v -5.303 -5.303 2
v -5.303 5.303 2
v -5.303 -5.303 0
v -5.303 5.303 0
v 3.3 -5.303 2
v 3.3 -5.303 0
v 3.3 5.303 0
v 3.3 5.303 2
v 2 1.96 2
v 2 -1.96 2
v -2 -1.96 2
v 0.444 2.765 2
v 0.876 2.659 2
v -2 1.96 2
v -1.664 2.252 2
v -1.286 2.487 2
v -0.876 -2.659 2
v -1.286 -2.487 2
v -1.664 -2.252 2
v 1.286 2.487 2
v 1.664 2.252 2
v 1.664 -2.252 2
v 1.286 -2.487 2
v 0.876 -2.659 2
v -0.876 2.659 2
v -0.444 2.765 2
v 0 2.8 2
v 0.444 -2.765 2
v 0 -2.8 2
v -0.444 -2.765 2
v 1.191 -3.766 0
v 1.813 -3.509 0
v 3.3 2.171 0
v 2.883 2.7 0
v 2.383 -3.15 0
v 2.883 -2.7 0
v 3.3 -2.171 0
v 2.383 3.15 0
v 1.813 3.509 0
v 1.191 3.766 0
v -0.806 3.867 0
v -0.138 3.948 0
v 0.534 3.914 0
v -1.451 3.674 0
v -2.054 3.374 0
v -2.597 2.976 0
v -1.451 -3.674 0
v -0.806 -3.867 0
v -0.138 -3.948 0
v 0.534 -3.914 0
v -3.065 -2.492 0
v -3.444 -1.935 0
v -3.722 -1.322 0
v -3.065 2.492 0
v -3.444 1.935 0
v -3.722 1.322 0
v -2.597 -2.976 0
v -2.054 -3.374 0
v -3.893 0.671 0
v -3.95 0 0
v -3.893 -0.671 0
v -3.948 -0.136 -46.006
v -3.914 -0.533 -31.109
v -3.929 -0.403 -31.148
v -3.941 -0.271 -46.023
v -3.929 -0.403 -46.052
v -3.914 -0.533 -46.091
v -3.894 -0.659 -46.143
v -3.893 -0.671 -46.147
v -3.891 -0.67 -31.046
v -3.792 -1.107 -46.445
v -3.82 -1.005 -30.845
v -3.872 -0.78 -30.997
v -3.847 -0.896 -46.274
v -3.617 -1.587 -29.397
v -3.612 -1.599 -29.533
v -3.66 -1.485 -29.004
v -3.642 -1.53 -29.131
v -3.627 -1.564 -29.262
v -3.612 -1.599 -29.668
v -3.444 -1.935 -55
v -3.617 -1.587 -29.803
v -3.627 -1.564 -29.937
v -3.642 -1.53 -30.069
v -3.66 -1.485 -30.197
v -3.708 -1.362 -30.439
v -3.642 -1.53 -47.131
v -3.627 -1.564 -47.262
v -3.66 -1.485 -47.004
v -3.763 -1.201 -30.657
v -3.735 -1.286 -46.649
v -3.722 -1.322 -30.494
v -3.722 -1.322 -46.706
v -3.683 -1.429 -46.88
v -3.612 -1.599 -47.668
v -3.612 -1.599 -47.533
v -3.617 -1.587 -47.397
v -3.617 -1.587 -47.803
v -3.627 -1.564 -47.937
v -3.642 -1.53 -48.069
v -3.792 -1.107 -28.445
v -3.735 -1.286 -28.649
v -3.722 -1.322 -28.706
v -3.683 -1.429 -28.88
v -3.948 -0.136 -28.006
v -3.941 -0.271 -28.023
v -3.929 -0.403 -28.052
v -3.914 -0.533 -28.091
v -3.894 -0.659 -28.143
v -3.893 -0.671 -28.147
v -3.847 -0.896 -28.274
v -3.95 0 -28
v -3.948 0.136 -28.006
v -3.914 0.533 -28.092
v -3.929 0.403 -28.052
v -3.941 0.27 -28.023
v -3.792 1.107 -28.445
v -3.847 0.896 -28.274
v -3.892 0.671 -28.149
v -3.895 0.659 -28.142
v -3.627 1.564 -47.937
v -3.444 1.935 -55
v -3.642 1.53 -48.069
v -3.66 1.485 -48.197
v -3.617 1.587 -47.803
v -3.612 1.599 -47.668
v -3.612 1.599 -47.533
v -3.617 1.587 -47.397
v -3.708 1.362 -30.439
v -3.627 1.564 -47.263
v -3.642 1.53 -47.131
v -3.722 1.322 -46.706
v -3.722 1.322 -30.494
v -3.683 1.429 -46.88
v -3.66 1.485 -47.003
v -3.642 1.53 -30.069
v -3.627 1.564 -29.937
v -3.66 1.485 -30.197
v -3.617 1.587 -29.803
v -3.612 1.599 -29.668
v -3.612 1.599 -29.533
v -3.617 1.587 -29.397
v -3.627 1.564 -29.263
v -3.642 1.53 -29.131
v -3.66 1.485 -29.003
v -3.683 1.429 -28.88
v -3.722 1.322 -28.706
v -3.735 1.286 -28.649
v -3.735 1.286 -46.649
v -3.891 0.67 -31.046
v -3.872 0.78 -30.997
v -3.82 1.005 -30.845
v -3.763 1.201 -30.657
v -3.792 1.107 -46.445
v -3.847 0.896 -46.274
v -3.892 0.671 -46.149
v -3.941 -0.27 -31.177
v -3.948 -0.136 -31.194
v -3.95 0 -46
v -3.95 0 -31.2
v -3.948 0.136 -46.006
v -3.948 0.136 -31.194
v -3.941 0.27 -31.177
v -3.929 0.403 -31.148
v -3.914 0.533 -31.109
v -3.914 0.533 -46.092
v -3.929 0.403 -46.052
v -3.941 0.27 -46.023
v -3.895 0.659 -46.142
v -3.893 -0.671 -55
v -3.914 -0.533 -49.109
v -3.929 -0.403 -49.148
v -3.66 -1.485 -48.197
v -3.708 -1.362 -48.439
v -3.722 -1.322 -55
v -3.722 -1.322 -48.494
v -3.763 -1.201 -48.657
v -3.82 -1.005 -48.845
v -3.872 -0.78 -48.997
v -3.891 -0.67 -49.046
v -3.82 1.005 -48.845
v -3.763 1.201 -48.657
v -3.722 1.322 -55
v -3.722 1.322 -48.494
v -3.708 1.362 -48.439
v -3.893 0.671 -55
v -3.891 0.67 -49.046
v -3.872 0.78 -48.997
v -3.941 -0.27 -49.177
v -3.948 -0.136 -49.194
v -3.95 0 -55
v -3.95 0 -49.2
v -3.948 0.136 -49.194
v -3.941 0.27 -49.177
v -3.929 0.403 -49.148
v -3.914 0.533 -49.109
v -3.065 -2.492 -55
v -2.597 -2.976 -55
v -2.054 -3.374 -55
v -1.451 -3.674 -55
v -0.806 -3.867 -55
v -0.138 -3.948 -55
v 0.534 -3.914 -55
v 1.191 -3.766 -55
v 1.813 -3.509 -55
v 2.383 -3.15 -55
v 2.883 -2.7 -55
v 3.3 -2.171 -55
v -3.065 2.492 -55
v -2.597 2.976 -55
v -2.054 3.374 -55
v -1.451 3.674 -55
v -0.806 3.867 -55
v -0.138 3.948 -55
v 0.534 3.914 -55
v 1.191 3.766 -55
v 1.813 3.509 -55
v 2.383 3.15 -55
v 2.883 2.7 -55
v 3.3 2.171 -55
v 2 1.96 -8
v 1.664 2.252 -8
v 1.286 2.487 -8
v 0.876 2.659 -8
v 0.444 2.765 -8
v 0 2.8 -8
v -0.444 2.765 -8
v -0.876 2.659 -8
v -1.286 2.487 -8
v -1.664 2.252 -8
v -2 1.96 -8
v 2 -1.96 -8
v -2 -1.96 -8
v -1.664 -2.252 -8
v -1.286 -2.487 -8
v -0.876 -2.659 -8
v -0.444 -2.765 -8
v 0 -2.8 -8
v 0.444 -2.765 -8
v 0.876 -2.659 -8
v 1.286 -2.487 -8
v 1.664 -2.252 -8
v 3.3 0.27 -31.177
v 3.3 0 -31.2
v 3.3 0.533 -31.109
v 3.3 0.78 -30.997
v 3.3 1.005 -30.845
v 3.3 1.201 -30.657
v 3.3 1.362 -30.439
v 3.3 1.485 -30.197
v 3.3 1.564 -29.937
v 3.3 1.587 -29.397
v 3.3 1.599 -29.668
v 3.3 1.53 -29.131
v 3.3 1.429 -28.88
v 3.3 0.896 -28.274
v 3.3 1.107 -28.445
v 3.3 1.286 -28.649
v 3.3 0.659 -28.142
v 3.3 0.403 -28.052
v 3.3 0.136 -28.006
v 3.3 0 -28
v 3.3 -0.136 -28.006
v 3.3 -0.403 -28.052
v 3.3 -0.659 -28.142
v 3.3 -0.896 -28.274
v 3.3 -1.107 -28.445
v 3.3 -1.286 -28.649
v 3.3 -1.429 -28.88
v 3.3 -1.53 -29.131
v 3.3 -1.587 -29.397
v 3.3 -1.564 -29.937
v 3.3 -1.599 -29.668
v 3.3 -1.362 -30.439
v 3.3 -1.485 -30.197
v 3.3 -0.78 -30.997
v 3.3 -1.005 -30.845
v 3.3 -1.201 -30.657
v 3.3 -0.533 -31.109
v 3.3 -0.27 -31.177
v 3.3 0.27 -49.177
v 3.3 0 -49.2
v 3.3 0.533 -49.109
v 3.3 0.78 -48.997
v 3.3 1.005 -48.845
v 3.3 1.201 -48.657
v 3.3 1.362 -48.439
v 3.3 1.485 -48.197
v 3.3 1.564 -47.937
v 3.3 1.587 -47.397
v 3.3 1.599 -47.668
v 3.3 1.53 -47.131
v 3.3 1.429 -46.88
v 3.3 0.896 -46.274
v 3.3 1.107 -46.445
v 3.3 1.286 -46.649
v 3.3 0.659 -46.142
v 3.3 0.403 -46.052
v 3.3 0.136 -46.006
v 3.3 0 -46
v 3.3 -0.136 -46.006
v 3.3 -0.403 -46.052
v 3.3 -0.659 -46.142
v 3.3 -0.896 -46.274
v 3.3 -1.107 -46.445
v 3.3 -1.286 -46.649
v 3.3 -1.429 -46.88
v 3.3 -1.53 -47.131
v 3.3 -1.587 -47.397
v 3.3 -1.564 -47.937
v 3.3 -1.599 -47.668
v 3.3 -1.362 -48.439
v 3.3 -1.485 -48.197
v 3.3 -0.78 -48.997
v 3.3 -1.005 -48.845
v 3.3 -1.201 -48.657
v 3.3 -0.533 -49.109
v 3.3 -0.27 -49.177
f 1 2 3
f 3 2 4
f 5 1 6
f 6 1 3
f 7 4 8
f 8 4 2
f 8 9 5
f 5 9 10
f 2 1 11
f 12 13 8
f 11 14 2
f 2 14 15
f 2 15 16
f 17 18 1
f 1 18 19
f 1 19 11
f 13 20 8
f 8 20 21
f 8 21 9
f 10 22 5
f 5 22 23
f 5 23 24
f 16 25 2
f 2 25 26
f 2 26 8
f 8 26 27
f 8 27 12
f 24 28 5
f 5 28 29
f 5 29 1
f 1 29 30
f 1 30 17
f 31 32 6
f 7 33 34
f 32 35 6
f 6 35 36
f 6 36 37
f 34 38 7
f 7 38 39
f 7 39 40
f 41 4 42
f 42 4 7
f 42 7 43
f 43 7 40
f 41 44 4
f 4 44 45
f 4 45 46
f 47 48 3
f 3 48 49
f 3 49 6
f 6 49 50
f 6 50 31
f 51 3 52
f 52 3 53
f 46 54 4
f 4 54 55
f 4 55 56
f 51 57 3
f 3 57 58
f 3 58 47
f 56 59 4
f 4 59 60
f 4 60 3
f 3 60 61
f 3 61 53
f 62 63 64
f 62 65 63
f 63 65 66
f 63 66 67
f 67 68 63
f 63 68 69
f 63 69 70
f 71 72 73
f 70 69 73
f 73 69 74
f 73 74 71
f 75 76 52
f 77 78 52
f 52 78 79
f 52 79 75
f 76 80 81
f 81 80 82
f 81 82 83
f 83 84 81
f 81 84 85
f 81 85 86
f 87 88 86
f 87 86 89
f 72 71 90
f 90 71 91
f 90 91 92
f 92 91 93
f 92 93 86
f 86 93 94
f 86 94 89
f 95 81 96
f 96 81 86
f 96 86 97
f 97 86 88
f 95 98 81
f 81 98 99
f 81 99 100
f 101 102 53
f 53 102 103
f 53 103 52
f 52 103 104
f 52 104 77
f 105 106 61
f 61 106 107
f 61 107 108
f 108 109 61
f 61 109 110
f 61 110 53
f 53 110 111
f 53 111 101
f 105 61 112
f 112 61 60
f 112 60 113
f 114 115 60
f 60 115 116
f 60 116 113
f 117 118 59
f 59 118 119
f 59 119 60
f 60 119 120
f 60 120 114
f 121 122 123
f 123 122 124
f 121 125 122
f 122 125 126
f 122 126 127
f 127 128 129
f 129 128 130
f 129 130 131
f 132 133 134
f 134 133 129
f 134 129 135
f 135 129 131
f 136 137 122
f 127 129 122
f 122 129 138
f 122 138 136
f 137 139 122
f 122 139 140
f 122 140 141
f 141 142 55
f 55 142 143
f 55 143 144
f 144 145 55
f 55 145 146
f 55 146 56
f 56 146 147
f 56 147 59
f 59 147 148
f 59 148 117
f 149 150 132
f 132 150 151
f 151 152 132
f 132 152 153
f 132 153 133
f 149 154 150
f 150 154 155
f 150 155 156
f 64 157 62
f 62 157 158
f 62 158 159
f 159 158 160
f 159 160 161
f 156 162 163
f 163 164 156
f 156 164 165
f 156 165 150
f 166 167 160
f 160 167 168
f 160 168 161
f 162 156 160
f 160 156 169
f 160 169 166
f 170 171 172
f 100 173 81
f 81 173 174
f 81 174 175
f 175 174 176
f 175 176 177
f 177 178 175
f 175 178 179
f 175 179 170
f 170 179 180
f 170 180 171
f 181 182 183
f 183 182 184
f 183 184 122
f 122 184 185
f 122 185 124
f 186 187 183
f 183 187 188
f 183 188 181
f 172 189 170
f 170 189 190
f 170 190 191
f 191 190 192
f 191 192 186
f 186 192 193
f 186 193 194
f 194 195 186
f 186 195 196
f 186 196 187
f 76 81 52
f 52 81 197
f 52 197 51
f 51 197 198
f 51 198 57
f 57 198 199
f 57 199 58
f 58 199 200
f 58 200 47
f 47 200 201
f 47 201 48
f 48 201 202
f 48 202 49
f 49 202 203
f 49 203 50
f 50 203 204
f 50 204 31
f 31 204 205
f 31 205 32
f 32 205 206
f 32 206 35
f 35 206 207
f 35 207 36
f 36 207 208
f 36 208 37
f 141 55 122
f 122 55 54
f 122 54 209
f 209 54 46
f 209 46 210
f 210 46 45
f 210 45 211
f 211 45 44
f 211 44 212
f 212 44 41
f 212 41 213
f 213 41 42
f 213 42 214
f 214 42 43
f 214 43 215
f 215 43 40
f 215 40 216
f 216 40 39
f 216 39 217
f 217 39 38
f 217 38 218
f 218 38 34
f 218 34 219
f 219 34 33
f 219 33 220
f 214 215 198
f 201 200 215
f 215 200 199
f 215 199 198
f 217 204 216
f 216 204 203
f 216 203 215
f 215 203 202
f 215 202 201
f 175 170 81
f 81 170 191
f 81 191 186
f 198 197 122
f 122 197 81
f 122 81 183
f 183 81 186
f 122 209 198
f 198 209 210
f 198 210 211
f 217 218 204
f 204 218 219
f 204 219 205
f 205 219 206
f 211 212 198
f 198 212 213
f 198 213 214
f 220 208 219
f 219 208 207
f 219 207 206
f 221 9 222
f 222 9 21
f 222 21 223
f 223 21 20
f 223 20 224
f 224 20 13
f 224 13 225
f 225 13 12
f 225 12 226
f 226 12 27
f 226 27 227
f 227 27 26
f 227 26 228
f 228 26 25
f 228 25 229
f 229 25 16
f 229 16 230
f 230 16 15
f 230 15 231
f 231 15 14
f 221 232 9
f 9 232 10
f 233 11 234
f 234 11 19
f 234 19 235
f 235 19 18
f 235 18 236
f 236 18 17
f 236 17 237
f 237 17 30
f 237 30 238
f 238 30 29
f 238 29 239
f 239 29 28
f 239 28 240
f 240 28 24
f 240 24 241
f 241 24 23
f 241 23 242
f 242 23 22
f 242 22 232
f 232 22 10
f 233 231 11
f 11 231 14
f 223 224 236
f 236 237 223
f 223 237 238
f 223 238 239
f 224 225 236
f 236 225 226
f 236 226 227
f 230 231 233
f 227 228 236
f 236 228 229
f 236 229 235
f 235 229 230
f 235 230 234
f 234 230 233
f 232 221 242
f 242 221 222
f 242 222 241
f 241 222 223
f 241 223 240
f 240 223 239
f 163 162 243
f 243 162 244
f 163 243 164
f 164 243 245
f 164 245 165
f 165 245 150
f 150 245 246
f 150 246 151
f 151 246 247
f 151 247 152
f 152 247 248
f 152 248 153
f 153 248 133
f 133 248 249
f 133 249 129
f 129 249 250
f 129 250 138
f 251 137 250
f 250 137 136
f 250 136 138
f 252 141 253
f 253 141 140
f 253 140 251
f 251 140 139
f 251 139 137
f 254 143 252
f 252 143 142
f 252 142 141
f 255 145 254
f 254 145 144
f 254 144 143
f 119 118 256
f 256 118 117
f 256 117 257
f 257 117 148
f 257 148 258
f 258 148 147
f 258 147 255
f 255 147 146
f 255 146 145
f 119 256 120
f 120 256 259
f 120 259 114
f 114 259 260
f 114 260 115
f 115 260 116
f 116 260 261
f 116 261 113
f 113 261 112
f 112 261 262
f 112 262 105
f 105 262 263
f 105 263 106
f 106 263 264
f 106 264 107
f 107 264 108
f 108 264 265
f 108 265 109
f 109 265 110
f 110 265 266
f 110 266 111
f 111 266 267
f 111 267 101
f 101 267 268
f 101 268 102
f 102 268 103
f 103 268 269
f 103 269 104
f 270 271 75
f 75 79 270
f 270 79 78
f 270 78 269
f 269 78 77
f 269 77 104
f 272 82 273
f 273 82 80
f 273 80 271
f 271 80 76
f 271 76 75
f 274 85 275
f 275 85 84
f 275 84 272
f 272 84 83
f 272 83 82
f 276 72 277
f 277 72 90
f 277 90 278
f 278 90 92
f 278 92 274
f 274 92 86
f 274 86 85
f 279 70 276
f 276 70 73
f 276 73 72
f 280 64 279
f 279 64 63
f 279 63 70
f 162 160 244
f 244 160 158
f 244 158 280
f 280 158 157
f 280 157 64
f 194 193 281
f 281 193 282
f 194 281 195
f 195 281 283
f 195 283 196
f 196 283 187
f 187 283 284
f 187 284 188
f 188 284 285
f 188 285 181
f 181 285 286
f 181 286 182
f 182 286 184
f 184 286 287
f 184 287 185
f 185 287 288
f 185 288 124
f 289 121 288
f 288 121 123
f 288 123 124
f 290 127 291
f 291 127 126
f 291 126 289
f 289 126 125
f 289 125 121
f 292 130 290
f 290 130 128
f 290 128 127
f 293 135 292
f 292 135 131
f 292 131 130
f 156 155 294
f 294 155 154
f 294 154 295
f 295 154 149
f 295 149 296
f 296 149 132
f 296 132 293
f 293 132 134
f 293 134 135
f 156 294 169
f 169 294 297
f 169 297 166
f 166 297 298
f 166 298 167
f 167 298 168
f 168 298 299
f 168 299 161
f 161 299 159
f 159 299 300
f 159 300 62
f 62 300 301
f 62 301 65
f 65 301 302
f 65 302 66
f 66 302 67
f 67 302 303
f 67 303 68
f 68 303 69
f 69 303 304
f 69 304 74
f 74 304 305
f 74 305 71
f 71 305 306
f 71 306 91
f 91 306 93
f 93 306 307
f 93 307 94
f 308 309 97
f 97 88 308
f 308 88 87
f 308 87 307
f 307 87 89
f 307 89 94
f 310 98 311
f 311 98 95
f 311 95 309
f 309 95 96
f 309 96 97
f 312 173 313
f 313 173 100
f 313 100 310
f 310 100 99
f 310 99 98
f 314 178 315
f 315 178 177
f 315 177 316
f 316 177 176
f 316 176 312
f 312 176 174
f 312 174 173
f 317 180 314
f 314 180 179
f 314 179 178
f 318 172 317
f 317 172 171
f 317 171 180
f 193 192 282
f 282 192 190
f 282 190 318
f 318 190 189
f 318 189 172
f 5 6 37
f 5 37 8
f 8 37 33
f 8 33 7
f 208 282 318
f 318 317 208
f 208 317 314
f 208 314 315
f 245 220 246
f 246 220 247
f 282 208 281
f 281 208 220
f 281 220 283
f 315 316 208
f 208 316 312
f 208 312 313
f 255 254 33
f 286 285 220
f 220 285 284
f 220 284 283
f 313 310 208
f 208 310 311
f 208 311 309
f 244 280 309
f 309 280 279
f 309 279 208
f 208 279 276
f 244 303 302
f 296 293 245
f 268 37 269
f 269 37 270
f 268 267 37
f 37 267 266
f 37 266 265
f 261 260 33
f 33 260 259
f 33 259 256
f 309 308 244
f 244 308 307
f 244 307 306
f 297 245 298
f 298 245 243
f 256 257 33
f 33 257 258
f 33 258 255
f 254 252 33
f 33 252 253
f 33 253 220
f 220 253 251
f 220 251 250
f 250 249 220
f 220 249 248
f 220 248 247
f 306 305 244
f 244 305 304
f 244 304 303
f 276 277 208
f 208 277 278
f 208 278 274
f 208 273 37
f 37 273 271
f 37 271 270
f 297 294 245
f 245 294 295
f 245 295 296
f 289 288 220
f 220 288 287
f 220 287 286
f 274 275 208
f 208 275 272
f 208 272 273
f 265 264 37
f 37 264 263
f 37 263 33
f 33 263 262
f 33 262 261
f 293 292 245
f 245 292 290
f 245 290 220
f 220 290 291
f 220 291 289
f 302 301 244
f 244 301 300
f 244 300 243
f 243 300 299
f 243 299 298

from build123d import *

# Parameters (mm, degrees)
IZIM1_W                     = 10.606601718
IZIM1_H                     = 10.606601718
Y_KSEKLIK_EKSTR_ZYON1_DEPTH = 2
IZIM2_R                     = 3.95
Y_KSEKLIK_EKSTR_ZYON2_DEPTH = 55
KES_EKSTR_ZYON1_DEPTH       = 10
IZIM5_R                     = 1.6
KES_EKSTR_ZYON3_DEPTH       = 26
IZIM8_W                     = 5
IZIM8_H                     = 13.621024602
KES_EKSTR_ZYON4_DEPTH       = 58.49130369


with BuildPart() as part:
    # Çizim1 → Yükseklik-Ekstrüzyon1 (new body)
    with BuildSketch(Plane.XY):
        Rectangle(IZIM1_W, IZIM1_H)
    extrude(amount=Y_KSEKLIK_EKSTR_ZYON1_DEPTH)

    # Çizim2 → Yükseklik-Ekstrüzyon2 (add)
    with BuildSketch(Plane(origin=(0, 0, 0), x_dir=(-1, 0, 0), z_dir=(0, 0, -1))):
        with Locations(Location((0, 0, 0), (0, 0, 180))):
            Circle(IZIM2_R)
    extrude(amount=Y_KSEKLIK_EKSTR_ZYON2_DEPTH)

    # Çizim3 → Kes-Ekstrüzyon1 (cut)
    with BuildSketch(Plane.XY.offset(2)):
        with BuildLine():
            Line((-2, -1.959591794), (-2, 1.959591794))
            ThreePointArc((-2, 1.959591794), (0, 2.8), (2, 1.959591794))
            Line((2, 1.959591794), (2, -1.959591794))
            ThreePointArc((2, -1.959591794), (0, -2.8), (-2, -1.959591794))
        make_face()
    extrude(amount=-KES_EKSTR_ZYON1_DEPTH, mode=Mode.SUBTRACT)

    # Çizim5 → Kes-Ekstrüzyon3 (cut, symmetric)
    with BuildSketch(Plane(origin=(0, 0, 0), x_dir=(0, 0, -1), z_dir=(1, 0, 0))):
        with Locations((29.6, 0)):
            Circle(IZIM5_R)
        with Locations((47.6, 0)):
            Circle(IZIM5_R)
    extrude(amount=KES_EKSTR_ZYON3_DEPTH, both=True, mode=Mode.SUBTRACT)

    # Çizim8 → Kes-Ekstrüzyon4 (cut, through all)
    with BuildSketch(Plane(origin=(0, 0, -55), x_dir=(-1, 0, 0), z_dir=(0, 0, -1))):
        with Locations((-5.8, 0)):
            Rectangle(IZIM8_W, IZIM8_H)
    extrude(amount=-KES_EKSTR_ZYON4_DEPTH, mode=Mode.SUBTRACT)


solid = part.part
